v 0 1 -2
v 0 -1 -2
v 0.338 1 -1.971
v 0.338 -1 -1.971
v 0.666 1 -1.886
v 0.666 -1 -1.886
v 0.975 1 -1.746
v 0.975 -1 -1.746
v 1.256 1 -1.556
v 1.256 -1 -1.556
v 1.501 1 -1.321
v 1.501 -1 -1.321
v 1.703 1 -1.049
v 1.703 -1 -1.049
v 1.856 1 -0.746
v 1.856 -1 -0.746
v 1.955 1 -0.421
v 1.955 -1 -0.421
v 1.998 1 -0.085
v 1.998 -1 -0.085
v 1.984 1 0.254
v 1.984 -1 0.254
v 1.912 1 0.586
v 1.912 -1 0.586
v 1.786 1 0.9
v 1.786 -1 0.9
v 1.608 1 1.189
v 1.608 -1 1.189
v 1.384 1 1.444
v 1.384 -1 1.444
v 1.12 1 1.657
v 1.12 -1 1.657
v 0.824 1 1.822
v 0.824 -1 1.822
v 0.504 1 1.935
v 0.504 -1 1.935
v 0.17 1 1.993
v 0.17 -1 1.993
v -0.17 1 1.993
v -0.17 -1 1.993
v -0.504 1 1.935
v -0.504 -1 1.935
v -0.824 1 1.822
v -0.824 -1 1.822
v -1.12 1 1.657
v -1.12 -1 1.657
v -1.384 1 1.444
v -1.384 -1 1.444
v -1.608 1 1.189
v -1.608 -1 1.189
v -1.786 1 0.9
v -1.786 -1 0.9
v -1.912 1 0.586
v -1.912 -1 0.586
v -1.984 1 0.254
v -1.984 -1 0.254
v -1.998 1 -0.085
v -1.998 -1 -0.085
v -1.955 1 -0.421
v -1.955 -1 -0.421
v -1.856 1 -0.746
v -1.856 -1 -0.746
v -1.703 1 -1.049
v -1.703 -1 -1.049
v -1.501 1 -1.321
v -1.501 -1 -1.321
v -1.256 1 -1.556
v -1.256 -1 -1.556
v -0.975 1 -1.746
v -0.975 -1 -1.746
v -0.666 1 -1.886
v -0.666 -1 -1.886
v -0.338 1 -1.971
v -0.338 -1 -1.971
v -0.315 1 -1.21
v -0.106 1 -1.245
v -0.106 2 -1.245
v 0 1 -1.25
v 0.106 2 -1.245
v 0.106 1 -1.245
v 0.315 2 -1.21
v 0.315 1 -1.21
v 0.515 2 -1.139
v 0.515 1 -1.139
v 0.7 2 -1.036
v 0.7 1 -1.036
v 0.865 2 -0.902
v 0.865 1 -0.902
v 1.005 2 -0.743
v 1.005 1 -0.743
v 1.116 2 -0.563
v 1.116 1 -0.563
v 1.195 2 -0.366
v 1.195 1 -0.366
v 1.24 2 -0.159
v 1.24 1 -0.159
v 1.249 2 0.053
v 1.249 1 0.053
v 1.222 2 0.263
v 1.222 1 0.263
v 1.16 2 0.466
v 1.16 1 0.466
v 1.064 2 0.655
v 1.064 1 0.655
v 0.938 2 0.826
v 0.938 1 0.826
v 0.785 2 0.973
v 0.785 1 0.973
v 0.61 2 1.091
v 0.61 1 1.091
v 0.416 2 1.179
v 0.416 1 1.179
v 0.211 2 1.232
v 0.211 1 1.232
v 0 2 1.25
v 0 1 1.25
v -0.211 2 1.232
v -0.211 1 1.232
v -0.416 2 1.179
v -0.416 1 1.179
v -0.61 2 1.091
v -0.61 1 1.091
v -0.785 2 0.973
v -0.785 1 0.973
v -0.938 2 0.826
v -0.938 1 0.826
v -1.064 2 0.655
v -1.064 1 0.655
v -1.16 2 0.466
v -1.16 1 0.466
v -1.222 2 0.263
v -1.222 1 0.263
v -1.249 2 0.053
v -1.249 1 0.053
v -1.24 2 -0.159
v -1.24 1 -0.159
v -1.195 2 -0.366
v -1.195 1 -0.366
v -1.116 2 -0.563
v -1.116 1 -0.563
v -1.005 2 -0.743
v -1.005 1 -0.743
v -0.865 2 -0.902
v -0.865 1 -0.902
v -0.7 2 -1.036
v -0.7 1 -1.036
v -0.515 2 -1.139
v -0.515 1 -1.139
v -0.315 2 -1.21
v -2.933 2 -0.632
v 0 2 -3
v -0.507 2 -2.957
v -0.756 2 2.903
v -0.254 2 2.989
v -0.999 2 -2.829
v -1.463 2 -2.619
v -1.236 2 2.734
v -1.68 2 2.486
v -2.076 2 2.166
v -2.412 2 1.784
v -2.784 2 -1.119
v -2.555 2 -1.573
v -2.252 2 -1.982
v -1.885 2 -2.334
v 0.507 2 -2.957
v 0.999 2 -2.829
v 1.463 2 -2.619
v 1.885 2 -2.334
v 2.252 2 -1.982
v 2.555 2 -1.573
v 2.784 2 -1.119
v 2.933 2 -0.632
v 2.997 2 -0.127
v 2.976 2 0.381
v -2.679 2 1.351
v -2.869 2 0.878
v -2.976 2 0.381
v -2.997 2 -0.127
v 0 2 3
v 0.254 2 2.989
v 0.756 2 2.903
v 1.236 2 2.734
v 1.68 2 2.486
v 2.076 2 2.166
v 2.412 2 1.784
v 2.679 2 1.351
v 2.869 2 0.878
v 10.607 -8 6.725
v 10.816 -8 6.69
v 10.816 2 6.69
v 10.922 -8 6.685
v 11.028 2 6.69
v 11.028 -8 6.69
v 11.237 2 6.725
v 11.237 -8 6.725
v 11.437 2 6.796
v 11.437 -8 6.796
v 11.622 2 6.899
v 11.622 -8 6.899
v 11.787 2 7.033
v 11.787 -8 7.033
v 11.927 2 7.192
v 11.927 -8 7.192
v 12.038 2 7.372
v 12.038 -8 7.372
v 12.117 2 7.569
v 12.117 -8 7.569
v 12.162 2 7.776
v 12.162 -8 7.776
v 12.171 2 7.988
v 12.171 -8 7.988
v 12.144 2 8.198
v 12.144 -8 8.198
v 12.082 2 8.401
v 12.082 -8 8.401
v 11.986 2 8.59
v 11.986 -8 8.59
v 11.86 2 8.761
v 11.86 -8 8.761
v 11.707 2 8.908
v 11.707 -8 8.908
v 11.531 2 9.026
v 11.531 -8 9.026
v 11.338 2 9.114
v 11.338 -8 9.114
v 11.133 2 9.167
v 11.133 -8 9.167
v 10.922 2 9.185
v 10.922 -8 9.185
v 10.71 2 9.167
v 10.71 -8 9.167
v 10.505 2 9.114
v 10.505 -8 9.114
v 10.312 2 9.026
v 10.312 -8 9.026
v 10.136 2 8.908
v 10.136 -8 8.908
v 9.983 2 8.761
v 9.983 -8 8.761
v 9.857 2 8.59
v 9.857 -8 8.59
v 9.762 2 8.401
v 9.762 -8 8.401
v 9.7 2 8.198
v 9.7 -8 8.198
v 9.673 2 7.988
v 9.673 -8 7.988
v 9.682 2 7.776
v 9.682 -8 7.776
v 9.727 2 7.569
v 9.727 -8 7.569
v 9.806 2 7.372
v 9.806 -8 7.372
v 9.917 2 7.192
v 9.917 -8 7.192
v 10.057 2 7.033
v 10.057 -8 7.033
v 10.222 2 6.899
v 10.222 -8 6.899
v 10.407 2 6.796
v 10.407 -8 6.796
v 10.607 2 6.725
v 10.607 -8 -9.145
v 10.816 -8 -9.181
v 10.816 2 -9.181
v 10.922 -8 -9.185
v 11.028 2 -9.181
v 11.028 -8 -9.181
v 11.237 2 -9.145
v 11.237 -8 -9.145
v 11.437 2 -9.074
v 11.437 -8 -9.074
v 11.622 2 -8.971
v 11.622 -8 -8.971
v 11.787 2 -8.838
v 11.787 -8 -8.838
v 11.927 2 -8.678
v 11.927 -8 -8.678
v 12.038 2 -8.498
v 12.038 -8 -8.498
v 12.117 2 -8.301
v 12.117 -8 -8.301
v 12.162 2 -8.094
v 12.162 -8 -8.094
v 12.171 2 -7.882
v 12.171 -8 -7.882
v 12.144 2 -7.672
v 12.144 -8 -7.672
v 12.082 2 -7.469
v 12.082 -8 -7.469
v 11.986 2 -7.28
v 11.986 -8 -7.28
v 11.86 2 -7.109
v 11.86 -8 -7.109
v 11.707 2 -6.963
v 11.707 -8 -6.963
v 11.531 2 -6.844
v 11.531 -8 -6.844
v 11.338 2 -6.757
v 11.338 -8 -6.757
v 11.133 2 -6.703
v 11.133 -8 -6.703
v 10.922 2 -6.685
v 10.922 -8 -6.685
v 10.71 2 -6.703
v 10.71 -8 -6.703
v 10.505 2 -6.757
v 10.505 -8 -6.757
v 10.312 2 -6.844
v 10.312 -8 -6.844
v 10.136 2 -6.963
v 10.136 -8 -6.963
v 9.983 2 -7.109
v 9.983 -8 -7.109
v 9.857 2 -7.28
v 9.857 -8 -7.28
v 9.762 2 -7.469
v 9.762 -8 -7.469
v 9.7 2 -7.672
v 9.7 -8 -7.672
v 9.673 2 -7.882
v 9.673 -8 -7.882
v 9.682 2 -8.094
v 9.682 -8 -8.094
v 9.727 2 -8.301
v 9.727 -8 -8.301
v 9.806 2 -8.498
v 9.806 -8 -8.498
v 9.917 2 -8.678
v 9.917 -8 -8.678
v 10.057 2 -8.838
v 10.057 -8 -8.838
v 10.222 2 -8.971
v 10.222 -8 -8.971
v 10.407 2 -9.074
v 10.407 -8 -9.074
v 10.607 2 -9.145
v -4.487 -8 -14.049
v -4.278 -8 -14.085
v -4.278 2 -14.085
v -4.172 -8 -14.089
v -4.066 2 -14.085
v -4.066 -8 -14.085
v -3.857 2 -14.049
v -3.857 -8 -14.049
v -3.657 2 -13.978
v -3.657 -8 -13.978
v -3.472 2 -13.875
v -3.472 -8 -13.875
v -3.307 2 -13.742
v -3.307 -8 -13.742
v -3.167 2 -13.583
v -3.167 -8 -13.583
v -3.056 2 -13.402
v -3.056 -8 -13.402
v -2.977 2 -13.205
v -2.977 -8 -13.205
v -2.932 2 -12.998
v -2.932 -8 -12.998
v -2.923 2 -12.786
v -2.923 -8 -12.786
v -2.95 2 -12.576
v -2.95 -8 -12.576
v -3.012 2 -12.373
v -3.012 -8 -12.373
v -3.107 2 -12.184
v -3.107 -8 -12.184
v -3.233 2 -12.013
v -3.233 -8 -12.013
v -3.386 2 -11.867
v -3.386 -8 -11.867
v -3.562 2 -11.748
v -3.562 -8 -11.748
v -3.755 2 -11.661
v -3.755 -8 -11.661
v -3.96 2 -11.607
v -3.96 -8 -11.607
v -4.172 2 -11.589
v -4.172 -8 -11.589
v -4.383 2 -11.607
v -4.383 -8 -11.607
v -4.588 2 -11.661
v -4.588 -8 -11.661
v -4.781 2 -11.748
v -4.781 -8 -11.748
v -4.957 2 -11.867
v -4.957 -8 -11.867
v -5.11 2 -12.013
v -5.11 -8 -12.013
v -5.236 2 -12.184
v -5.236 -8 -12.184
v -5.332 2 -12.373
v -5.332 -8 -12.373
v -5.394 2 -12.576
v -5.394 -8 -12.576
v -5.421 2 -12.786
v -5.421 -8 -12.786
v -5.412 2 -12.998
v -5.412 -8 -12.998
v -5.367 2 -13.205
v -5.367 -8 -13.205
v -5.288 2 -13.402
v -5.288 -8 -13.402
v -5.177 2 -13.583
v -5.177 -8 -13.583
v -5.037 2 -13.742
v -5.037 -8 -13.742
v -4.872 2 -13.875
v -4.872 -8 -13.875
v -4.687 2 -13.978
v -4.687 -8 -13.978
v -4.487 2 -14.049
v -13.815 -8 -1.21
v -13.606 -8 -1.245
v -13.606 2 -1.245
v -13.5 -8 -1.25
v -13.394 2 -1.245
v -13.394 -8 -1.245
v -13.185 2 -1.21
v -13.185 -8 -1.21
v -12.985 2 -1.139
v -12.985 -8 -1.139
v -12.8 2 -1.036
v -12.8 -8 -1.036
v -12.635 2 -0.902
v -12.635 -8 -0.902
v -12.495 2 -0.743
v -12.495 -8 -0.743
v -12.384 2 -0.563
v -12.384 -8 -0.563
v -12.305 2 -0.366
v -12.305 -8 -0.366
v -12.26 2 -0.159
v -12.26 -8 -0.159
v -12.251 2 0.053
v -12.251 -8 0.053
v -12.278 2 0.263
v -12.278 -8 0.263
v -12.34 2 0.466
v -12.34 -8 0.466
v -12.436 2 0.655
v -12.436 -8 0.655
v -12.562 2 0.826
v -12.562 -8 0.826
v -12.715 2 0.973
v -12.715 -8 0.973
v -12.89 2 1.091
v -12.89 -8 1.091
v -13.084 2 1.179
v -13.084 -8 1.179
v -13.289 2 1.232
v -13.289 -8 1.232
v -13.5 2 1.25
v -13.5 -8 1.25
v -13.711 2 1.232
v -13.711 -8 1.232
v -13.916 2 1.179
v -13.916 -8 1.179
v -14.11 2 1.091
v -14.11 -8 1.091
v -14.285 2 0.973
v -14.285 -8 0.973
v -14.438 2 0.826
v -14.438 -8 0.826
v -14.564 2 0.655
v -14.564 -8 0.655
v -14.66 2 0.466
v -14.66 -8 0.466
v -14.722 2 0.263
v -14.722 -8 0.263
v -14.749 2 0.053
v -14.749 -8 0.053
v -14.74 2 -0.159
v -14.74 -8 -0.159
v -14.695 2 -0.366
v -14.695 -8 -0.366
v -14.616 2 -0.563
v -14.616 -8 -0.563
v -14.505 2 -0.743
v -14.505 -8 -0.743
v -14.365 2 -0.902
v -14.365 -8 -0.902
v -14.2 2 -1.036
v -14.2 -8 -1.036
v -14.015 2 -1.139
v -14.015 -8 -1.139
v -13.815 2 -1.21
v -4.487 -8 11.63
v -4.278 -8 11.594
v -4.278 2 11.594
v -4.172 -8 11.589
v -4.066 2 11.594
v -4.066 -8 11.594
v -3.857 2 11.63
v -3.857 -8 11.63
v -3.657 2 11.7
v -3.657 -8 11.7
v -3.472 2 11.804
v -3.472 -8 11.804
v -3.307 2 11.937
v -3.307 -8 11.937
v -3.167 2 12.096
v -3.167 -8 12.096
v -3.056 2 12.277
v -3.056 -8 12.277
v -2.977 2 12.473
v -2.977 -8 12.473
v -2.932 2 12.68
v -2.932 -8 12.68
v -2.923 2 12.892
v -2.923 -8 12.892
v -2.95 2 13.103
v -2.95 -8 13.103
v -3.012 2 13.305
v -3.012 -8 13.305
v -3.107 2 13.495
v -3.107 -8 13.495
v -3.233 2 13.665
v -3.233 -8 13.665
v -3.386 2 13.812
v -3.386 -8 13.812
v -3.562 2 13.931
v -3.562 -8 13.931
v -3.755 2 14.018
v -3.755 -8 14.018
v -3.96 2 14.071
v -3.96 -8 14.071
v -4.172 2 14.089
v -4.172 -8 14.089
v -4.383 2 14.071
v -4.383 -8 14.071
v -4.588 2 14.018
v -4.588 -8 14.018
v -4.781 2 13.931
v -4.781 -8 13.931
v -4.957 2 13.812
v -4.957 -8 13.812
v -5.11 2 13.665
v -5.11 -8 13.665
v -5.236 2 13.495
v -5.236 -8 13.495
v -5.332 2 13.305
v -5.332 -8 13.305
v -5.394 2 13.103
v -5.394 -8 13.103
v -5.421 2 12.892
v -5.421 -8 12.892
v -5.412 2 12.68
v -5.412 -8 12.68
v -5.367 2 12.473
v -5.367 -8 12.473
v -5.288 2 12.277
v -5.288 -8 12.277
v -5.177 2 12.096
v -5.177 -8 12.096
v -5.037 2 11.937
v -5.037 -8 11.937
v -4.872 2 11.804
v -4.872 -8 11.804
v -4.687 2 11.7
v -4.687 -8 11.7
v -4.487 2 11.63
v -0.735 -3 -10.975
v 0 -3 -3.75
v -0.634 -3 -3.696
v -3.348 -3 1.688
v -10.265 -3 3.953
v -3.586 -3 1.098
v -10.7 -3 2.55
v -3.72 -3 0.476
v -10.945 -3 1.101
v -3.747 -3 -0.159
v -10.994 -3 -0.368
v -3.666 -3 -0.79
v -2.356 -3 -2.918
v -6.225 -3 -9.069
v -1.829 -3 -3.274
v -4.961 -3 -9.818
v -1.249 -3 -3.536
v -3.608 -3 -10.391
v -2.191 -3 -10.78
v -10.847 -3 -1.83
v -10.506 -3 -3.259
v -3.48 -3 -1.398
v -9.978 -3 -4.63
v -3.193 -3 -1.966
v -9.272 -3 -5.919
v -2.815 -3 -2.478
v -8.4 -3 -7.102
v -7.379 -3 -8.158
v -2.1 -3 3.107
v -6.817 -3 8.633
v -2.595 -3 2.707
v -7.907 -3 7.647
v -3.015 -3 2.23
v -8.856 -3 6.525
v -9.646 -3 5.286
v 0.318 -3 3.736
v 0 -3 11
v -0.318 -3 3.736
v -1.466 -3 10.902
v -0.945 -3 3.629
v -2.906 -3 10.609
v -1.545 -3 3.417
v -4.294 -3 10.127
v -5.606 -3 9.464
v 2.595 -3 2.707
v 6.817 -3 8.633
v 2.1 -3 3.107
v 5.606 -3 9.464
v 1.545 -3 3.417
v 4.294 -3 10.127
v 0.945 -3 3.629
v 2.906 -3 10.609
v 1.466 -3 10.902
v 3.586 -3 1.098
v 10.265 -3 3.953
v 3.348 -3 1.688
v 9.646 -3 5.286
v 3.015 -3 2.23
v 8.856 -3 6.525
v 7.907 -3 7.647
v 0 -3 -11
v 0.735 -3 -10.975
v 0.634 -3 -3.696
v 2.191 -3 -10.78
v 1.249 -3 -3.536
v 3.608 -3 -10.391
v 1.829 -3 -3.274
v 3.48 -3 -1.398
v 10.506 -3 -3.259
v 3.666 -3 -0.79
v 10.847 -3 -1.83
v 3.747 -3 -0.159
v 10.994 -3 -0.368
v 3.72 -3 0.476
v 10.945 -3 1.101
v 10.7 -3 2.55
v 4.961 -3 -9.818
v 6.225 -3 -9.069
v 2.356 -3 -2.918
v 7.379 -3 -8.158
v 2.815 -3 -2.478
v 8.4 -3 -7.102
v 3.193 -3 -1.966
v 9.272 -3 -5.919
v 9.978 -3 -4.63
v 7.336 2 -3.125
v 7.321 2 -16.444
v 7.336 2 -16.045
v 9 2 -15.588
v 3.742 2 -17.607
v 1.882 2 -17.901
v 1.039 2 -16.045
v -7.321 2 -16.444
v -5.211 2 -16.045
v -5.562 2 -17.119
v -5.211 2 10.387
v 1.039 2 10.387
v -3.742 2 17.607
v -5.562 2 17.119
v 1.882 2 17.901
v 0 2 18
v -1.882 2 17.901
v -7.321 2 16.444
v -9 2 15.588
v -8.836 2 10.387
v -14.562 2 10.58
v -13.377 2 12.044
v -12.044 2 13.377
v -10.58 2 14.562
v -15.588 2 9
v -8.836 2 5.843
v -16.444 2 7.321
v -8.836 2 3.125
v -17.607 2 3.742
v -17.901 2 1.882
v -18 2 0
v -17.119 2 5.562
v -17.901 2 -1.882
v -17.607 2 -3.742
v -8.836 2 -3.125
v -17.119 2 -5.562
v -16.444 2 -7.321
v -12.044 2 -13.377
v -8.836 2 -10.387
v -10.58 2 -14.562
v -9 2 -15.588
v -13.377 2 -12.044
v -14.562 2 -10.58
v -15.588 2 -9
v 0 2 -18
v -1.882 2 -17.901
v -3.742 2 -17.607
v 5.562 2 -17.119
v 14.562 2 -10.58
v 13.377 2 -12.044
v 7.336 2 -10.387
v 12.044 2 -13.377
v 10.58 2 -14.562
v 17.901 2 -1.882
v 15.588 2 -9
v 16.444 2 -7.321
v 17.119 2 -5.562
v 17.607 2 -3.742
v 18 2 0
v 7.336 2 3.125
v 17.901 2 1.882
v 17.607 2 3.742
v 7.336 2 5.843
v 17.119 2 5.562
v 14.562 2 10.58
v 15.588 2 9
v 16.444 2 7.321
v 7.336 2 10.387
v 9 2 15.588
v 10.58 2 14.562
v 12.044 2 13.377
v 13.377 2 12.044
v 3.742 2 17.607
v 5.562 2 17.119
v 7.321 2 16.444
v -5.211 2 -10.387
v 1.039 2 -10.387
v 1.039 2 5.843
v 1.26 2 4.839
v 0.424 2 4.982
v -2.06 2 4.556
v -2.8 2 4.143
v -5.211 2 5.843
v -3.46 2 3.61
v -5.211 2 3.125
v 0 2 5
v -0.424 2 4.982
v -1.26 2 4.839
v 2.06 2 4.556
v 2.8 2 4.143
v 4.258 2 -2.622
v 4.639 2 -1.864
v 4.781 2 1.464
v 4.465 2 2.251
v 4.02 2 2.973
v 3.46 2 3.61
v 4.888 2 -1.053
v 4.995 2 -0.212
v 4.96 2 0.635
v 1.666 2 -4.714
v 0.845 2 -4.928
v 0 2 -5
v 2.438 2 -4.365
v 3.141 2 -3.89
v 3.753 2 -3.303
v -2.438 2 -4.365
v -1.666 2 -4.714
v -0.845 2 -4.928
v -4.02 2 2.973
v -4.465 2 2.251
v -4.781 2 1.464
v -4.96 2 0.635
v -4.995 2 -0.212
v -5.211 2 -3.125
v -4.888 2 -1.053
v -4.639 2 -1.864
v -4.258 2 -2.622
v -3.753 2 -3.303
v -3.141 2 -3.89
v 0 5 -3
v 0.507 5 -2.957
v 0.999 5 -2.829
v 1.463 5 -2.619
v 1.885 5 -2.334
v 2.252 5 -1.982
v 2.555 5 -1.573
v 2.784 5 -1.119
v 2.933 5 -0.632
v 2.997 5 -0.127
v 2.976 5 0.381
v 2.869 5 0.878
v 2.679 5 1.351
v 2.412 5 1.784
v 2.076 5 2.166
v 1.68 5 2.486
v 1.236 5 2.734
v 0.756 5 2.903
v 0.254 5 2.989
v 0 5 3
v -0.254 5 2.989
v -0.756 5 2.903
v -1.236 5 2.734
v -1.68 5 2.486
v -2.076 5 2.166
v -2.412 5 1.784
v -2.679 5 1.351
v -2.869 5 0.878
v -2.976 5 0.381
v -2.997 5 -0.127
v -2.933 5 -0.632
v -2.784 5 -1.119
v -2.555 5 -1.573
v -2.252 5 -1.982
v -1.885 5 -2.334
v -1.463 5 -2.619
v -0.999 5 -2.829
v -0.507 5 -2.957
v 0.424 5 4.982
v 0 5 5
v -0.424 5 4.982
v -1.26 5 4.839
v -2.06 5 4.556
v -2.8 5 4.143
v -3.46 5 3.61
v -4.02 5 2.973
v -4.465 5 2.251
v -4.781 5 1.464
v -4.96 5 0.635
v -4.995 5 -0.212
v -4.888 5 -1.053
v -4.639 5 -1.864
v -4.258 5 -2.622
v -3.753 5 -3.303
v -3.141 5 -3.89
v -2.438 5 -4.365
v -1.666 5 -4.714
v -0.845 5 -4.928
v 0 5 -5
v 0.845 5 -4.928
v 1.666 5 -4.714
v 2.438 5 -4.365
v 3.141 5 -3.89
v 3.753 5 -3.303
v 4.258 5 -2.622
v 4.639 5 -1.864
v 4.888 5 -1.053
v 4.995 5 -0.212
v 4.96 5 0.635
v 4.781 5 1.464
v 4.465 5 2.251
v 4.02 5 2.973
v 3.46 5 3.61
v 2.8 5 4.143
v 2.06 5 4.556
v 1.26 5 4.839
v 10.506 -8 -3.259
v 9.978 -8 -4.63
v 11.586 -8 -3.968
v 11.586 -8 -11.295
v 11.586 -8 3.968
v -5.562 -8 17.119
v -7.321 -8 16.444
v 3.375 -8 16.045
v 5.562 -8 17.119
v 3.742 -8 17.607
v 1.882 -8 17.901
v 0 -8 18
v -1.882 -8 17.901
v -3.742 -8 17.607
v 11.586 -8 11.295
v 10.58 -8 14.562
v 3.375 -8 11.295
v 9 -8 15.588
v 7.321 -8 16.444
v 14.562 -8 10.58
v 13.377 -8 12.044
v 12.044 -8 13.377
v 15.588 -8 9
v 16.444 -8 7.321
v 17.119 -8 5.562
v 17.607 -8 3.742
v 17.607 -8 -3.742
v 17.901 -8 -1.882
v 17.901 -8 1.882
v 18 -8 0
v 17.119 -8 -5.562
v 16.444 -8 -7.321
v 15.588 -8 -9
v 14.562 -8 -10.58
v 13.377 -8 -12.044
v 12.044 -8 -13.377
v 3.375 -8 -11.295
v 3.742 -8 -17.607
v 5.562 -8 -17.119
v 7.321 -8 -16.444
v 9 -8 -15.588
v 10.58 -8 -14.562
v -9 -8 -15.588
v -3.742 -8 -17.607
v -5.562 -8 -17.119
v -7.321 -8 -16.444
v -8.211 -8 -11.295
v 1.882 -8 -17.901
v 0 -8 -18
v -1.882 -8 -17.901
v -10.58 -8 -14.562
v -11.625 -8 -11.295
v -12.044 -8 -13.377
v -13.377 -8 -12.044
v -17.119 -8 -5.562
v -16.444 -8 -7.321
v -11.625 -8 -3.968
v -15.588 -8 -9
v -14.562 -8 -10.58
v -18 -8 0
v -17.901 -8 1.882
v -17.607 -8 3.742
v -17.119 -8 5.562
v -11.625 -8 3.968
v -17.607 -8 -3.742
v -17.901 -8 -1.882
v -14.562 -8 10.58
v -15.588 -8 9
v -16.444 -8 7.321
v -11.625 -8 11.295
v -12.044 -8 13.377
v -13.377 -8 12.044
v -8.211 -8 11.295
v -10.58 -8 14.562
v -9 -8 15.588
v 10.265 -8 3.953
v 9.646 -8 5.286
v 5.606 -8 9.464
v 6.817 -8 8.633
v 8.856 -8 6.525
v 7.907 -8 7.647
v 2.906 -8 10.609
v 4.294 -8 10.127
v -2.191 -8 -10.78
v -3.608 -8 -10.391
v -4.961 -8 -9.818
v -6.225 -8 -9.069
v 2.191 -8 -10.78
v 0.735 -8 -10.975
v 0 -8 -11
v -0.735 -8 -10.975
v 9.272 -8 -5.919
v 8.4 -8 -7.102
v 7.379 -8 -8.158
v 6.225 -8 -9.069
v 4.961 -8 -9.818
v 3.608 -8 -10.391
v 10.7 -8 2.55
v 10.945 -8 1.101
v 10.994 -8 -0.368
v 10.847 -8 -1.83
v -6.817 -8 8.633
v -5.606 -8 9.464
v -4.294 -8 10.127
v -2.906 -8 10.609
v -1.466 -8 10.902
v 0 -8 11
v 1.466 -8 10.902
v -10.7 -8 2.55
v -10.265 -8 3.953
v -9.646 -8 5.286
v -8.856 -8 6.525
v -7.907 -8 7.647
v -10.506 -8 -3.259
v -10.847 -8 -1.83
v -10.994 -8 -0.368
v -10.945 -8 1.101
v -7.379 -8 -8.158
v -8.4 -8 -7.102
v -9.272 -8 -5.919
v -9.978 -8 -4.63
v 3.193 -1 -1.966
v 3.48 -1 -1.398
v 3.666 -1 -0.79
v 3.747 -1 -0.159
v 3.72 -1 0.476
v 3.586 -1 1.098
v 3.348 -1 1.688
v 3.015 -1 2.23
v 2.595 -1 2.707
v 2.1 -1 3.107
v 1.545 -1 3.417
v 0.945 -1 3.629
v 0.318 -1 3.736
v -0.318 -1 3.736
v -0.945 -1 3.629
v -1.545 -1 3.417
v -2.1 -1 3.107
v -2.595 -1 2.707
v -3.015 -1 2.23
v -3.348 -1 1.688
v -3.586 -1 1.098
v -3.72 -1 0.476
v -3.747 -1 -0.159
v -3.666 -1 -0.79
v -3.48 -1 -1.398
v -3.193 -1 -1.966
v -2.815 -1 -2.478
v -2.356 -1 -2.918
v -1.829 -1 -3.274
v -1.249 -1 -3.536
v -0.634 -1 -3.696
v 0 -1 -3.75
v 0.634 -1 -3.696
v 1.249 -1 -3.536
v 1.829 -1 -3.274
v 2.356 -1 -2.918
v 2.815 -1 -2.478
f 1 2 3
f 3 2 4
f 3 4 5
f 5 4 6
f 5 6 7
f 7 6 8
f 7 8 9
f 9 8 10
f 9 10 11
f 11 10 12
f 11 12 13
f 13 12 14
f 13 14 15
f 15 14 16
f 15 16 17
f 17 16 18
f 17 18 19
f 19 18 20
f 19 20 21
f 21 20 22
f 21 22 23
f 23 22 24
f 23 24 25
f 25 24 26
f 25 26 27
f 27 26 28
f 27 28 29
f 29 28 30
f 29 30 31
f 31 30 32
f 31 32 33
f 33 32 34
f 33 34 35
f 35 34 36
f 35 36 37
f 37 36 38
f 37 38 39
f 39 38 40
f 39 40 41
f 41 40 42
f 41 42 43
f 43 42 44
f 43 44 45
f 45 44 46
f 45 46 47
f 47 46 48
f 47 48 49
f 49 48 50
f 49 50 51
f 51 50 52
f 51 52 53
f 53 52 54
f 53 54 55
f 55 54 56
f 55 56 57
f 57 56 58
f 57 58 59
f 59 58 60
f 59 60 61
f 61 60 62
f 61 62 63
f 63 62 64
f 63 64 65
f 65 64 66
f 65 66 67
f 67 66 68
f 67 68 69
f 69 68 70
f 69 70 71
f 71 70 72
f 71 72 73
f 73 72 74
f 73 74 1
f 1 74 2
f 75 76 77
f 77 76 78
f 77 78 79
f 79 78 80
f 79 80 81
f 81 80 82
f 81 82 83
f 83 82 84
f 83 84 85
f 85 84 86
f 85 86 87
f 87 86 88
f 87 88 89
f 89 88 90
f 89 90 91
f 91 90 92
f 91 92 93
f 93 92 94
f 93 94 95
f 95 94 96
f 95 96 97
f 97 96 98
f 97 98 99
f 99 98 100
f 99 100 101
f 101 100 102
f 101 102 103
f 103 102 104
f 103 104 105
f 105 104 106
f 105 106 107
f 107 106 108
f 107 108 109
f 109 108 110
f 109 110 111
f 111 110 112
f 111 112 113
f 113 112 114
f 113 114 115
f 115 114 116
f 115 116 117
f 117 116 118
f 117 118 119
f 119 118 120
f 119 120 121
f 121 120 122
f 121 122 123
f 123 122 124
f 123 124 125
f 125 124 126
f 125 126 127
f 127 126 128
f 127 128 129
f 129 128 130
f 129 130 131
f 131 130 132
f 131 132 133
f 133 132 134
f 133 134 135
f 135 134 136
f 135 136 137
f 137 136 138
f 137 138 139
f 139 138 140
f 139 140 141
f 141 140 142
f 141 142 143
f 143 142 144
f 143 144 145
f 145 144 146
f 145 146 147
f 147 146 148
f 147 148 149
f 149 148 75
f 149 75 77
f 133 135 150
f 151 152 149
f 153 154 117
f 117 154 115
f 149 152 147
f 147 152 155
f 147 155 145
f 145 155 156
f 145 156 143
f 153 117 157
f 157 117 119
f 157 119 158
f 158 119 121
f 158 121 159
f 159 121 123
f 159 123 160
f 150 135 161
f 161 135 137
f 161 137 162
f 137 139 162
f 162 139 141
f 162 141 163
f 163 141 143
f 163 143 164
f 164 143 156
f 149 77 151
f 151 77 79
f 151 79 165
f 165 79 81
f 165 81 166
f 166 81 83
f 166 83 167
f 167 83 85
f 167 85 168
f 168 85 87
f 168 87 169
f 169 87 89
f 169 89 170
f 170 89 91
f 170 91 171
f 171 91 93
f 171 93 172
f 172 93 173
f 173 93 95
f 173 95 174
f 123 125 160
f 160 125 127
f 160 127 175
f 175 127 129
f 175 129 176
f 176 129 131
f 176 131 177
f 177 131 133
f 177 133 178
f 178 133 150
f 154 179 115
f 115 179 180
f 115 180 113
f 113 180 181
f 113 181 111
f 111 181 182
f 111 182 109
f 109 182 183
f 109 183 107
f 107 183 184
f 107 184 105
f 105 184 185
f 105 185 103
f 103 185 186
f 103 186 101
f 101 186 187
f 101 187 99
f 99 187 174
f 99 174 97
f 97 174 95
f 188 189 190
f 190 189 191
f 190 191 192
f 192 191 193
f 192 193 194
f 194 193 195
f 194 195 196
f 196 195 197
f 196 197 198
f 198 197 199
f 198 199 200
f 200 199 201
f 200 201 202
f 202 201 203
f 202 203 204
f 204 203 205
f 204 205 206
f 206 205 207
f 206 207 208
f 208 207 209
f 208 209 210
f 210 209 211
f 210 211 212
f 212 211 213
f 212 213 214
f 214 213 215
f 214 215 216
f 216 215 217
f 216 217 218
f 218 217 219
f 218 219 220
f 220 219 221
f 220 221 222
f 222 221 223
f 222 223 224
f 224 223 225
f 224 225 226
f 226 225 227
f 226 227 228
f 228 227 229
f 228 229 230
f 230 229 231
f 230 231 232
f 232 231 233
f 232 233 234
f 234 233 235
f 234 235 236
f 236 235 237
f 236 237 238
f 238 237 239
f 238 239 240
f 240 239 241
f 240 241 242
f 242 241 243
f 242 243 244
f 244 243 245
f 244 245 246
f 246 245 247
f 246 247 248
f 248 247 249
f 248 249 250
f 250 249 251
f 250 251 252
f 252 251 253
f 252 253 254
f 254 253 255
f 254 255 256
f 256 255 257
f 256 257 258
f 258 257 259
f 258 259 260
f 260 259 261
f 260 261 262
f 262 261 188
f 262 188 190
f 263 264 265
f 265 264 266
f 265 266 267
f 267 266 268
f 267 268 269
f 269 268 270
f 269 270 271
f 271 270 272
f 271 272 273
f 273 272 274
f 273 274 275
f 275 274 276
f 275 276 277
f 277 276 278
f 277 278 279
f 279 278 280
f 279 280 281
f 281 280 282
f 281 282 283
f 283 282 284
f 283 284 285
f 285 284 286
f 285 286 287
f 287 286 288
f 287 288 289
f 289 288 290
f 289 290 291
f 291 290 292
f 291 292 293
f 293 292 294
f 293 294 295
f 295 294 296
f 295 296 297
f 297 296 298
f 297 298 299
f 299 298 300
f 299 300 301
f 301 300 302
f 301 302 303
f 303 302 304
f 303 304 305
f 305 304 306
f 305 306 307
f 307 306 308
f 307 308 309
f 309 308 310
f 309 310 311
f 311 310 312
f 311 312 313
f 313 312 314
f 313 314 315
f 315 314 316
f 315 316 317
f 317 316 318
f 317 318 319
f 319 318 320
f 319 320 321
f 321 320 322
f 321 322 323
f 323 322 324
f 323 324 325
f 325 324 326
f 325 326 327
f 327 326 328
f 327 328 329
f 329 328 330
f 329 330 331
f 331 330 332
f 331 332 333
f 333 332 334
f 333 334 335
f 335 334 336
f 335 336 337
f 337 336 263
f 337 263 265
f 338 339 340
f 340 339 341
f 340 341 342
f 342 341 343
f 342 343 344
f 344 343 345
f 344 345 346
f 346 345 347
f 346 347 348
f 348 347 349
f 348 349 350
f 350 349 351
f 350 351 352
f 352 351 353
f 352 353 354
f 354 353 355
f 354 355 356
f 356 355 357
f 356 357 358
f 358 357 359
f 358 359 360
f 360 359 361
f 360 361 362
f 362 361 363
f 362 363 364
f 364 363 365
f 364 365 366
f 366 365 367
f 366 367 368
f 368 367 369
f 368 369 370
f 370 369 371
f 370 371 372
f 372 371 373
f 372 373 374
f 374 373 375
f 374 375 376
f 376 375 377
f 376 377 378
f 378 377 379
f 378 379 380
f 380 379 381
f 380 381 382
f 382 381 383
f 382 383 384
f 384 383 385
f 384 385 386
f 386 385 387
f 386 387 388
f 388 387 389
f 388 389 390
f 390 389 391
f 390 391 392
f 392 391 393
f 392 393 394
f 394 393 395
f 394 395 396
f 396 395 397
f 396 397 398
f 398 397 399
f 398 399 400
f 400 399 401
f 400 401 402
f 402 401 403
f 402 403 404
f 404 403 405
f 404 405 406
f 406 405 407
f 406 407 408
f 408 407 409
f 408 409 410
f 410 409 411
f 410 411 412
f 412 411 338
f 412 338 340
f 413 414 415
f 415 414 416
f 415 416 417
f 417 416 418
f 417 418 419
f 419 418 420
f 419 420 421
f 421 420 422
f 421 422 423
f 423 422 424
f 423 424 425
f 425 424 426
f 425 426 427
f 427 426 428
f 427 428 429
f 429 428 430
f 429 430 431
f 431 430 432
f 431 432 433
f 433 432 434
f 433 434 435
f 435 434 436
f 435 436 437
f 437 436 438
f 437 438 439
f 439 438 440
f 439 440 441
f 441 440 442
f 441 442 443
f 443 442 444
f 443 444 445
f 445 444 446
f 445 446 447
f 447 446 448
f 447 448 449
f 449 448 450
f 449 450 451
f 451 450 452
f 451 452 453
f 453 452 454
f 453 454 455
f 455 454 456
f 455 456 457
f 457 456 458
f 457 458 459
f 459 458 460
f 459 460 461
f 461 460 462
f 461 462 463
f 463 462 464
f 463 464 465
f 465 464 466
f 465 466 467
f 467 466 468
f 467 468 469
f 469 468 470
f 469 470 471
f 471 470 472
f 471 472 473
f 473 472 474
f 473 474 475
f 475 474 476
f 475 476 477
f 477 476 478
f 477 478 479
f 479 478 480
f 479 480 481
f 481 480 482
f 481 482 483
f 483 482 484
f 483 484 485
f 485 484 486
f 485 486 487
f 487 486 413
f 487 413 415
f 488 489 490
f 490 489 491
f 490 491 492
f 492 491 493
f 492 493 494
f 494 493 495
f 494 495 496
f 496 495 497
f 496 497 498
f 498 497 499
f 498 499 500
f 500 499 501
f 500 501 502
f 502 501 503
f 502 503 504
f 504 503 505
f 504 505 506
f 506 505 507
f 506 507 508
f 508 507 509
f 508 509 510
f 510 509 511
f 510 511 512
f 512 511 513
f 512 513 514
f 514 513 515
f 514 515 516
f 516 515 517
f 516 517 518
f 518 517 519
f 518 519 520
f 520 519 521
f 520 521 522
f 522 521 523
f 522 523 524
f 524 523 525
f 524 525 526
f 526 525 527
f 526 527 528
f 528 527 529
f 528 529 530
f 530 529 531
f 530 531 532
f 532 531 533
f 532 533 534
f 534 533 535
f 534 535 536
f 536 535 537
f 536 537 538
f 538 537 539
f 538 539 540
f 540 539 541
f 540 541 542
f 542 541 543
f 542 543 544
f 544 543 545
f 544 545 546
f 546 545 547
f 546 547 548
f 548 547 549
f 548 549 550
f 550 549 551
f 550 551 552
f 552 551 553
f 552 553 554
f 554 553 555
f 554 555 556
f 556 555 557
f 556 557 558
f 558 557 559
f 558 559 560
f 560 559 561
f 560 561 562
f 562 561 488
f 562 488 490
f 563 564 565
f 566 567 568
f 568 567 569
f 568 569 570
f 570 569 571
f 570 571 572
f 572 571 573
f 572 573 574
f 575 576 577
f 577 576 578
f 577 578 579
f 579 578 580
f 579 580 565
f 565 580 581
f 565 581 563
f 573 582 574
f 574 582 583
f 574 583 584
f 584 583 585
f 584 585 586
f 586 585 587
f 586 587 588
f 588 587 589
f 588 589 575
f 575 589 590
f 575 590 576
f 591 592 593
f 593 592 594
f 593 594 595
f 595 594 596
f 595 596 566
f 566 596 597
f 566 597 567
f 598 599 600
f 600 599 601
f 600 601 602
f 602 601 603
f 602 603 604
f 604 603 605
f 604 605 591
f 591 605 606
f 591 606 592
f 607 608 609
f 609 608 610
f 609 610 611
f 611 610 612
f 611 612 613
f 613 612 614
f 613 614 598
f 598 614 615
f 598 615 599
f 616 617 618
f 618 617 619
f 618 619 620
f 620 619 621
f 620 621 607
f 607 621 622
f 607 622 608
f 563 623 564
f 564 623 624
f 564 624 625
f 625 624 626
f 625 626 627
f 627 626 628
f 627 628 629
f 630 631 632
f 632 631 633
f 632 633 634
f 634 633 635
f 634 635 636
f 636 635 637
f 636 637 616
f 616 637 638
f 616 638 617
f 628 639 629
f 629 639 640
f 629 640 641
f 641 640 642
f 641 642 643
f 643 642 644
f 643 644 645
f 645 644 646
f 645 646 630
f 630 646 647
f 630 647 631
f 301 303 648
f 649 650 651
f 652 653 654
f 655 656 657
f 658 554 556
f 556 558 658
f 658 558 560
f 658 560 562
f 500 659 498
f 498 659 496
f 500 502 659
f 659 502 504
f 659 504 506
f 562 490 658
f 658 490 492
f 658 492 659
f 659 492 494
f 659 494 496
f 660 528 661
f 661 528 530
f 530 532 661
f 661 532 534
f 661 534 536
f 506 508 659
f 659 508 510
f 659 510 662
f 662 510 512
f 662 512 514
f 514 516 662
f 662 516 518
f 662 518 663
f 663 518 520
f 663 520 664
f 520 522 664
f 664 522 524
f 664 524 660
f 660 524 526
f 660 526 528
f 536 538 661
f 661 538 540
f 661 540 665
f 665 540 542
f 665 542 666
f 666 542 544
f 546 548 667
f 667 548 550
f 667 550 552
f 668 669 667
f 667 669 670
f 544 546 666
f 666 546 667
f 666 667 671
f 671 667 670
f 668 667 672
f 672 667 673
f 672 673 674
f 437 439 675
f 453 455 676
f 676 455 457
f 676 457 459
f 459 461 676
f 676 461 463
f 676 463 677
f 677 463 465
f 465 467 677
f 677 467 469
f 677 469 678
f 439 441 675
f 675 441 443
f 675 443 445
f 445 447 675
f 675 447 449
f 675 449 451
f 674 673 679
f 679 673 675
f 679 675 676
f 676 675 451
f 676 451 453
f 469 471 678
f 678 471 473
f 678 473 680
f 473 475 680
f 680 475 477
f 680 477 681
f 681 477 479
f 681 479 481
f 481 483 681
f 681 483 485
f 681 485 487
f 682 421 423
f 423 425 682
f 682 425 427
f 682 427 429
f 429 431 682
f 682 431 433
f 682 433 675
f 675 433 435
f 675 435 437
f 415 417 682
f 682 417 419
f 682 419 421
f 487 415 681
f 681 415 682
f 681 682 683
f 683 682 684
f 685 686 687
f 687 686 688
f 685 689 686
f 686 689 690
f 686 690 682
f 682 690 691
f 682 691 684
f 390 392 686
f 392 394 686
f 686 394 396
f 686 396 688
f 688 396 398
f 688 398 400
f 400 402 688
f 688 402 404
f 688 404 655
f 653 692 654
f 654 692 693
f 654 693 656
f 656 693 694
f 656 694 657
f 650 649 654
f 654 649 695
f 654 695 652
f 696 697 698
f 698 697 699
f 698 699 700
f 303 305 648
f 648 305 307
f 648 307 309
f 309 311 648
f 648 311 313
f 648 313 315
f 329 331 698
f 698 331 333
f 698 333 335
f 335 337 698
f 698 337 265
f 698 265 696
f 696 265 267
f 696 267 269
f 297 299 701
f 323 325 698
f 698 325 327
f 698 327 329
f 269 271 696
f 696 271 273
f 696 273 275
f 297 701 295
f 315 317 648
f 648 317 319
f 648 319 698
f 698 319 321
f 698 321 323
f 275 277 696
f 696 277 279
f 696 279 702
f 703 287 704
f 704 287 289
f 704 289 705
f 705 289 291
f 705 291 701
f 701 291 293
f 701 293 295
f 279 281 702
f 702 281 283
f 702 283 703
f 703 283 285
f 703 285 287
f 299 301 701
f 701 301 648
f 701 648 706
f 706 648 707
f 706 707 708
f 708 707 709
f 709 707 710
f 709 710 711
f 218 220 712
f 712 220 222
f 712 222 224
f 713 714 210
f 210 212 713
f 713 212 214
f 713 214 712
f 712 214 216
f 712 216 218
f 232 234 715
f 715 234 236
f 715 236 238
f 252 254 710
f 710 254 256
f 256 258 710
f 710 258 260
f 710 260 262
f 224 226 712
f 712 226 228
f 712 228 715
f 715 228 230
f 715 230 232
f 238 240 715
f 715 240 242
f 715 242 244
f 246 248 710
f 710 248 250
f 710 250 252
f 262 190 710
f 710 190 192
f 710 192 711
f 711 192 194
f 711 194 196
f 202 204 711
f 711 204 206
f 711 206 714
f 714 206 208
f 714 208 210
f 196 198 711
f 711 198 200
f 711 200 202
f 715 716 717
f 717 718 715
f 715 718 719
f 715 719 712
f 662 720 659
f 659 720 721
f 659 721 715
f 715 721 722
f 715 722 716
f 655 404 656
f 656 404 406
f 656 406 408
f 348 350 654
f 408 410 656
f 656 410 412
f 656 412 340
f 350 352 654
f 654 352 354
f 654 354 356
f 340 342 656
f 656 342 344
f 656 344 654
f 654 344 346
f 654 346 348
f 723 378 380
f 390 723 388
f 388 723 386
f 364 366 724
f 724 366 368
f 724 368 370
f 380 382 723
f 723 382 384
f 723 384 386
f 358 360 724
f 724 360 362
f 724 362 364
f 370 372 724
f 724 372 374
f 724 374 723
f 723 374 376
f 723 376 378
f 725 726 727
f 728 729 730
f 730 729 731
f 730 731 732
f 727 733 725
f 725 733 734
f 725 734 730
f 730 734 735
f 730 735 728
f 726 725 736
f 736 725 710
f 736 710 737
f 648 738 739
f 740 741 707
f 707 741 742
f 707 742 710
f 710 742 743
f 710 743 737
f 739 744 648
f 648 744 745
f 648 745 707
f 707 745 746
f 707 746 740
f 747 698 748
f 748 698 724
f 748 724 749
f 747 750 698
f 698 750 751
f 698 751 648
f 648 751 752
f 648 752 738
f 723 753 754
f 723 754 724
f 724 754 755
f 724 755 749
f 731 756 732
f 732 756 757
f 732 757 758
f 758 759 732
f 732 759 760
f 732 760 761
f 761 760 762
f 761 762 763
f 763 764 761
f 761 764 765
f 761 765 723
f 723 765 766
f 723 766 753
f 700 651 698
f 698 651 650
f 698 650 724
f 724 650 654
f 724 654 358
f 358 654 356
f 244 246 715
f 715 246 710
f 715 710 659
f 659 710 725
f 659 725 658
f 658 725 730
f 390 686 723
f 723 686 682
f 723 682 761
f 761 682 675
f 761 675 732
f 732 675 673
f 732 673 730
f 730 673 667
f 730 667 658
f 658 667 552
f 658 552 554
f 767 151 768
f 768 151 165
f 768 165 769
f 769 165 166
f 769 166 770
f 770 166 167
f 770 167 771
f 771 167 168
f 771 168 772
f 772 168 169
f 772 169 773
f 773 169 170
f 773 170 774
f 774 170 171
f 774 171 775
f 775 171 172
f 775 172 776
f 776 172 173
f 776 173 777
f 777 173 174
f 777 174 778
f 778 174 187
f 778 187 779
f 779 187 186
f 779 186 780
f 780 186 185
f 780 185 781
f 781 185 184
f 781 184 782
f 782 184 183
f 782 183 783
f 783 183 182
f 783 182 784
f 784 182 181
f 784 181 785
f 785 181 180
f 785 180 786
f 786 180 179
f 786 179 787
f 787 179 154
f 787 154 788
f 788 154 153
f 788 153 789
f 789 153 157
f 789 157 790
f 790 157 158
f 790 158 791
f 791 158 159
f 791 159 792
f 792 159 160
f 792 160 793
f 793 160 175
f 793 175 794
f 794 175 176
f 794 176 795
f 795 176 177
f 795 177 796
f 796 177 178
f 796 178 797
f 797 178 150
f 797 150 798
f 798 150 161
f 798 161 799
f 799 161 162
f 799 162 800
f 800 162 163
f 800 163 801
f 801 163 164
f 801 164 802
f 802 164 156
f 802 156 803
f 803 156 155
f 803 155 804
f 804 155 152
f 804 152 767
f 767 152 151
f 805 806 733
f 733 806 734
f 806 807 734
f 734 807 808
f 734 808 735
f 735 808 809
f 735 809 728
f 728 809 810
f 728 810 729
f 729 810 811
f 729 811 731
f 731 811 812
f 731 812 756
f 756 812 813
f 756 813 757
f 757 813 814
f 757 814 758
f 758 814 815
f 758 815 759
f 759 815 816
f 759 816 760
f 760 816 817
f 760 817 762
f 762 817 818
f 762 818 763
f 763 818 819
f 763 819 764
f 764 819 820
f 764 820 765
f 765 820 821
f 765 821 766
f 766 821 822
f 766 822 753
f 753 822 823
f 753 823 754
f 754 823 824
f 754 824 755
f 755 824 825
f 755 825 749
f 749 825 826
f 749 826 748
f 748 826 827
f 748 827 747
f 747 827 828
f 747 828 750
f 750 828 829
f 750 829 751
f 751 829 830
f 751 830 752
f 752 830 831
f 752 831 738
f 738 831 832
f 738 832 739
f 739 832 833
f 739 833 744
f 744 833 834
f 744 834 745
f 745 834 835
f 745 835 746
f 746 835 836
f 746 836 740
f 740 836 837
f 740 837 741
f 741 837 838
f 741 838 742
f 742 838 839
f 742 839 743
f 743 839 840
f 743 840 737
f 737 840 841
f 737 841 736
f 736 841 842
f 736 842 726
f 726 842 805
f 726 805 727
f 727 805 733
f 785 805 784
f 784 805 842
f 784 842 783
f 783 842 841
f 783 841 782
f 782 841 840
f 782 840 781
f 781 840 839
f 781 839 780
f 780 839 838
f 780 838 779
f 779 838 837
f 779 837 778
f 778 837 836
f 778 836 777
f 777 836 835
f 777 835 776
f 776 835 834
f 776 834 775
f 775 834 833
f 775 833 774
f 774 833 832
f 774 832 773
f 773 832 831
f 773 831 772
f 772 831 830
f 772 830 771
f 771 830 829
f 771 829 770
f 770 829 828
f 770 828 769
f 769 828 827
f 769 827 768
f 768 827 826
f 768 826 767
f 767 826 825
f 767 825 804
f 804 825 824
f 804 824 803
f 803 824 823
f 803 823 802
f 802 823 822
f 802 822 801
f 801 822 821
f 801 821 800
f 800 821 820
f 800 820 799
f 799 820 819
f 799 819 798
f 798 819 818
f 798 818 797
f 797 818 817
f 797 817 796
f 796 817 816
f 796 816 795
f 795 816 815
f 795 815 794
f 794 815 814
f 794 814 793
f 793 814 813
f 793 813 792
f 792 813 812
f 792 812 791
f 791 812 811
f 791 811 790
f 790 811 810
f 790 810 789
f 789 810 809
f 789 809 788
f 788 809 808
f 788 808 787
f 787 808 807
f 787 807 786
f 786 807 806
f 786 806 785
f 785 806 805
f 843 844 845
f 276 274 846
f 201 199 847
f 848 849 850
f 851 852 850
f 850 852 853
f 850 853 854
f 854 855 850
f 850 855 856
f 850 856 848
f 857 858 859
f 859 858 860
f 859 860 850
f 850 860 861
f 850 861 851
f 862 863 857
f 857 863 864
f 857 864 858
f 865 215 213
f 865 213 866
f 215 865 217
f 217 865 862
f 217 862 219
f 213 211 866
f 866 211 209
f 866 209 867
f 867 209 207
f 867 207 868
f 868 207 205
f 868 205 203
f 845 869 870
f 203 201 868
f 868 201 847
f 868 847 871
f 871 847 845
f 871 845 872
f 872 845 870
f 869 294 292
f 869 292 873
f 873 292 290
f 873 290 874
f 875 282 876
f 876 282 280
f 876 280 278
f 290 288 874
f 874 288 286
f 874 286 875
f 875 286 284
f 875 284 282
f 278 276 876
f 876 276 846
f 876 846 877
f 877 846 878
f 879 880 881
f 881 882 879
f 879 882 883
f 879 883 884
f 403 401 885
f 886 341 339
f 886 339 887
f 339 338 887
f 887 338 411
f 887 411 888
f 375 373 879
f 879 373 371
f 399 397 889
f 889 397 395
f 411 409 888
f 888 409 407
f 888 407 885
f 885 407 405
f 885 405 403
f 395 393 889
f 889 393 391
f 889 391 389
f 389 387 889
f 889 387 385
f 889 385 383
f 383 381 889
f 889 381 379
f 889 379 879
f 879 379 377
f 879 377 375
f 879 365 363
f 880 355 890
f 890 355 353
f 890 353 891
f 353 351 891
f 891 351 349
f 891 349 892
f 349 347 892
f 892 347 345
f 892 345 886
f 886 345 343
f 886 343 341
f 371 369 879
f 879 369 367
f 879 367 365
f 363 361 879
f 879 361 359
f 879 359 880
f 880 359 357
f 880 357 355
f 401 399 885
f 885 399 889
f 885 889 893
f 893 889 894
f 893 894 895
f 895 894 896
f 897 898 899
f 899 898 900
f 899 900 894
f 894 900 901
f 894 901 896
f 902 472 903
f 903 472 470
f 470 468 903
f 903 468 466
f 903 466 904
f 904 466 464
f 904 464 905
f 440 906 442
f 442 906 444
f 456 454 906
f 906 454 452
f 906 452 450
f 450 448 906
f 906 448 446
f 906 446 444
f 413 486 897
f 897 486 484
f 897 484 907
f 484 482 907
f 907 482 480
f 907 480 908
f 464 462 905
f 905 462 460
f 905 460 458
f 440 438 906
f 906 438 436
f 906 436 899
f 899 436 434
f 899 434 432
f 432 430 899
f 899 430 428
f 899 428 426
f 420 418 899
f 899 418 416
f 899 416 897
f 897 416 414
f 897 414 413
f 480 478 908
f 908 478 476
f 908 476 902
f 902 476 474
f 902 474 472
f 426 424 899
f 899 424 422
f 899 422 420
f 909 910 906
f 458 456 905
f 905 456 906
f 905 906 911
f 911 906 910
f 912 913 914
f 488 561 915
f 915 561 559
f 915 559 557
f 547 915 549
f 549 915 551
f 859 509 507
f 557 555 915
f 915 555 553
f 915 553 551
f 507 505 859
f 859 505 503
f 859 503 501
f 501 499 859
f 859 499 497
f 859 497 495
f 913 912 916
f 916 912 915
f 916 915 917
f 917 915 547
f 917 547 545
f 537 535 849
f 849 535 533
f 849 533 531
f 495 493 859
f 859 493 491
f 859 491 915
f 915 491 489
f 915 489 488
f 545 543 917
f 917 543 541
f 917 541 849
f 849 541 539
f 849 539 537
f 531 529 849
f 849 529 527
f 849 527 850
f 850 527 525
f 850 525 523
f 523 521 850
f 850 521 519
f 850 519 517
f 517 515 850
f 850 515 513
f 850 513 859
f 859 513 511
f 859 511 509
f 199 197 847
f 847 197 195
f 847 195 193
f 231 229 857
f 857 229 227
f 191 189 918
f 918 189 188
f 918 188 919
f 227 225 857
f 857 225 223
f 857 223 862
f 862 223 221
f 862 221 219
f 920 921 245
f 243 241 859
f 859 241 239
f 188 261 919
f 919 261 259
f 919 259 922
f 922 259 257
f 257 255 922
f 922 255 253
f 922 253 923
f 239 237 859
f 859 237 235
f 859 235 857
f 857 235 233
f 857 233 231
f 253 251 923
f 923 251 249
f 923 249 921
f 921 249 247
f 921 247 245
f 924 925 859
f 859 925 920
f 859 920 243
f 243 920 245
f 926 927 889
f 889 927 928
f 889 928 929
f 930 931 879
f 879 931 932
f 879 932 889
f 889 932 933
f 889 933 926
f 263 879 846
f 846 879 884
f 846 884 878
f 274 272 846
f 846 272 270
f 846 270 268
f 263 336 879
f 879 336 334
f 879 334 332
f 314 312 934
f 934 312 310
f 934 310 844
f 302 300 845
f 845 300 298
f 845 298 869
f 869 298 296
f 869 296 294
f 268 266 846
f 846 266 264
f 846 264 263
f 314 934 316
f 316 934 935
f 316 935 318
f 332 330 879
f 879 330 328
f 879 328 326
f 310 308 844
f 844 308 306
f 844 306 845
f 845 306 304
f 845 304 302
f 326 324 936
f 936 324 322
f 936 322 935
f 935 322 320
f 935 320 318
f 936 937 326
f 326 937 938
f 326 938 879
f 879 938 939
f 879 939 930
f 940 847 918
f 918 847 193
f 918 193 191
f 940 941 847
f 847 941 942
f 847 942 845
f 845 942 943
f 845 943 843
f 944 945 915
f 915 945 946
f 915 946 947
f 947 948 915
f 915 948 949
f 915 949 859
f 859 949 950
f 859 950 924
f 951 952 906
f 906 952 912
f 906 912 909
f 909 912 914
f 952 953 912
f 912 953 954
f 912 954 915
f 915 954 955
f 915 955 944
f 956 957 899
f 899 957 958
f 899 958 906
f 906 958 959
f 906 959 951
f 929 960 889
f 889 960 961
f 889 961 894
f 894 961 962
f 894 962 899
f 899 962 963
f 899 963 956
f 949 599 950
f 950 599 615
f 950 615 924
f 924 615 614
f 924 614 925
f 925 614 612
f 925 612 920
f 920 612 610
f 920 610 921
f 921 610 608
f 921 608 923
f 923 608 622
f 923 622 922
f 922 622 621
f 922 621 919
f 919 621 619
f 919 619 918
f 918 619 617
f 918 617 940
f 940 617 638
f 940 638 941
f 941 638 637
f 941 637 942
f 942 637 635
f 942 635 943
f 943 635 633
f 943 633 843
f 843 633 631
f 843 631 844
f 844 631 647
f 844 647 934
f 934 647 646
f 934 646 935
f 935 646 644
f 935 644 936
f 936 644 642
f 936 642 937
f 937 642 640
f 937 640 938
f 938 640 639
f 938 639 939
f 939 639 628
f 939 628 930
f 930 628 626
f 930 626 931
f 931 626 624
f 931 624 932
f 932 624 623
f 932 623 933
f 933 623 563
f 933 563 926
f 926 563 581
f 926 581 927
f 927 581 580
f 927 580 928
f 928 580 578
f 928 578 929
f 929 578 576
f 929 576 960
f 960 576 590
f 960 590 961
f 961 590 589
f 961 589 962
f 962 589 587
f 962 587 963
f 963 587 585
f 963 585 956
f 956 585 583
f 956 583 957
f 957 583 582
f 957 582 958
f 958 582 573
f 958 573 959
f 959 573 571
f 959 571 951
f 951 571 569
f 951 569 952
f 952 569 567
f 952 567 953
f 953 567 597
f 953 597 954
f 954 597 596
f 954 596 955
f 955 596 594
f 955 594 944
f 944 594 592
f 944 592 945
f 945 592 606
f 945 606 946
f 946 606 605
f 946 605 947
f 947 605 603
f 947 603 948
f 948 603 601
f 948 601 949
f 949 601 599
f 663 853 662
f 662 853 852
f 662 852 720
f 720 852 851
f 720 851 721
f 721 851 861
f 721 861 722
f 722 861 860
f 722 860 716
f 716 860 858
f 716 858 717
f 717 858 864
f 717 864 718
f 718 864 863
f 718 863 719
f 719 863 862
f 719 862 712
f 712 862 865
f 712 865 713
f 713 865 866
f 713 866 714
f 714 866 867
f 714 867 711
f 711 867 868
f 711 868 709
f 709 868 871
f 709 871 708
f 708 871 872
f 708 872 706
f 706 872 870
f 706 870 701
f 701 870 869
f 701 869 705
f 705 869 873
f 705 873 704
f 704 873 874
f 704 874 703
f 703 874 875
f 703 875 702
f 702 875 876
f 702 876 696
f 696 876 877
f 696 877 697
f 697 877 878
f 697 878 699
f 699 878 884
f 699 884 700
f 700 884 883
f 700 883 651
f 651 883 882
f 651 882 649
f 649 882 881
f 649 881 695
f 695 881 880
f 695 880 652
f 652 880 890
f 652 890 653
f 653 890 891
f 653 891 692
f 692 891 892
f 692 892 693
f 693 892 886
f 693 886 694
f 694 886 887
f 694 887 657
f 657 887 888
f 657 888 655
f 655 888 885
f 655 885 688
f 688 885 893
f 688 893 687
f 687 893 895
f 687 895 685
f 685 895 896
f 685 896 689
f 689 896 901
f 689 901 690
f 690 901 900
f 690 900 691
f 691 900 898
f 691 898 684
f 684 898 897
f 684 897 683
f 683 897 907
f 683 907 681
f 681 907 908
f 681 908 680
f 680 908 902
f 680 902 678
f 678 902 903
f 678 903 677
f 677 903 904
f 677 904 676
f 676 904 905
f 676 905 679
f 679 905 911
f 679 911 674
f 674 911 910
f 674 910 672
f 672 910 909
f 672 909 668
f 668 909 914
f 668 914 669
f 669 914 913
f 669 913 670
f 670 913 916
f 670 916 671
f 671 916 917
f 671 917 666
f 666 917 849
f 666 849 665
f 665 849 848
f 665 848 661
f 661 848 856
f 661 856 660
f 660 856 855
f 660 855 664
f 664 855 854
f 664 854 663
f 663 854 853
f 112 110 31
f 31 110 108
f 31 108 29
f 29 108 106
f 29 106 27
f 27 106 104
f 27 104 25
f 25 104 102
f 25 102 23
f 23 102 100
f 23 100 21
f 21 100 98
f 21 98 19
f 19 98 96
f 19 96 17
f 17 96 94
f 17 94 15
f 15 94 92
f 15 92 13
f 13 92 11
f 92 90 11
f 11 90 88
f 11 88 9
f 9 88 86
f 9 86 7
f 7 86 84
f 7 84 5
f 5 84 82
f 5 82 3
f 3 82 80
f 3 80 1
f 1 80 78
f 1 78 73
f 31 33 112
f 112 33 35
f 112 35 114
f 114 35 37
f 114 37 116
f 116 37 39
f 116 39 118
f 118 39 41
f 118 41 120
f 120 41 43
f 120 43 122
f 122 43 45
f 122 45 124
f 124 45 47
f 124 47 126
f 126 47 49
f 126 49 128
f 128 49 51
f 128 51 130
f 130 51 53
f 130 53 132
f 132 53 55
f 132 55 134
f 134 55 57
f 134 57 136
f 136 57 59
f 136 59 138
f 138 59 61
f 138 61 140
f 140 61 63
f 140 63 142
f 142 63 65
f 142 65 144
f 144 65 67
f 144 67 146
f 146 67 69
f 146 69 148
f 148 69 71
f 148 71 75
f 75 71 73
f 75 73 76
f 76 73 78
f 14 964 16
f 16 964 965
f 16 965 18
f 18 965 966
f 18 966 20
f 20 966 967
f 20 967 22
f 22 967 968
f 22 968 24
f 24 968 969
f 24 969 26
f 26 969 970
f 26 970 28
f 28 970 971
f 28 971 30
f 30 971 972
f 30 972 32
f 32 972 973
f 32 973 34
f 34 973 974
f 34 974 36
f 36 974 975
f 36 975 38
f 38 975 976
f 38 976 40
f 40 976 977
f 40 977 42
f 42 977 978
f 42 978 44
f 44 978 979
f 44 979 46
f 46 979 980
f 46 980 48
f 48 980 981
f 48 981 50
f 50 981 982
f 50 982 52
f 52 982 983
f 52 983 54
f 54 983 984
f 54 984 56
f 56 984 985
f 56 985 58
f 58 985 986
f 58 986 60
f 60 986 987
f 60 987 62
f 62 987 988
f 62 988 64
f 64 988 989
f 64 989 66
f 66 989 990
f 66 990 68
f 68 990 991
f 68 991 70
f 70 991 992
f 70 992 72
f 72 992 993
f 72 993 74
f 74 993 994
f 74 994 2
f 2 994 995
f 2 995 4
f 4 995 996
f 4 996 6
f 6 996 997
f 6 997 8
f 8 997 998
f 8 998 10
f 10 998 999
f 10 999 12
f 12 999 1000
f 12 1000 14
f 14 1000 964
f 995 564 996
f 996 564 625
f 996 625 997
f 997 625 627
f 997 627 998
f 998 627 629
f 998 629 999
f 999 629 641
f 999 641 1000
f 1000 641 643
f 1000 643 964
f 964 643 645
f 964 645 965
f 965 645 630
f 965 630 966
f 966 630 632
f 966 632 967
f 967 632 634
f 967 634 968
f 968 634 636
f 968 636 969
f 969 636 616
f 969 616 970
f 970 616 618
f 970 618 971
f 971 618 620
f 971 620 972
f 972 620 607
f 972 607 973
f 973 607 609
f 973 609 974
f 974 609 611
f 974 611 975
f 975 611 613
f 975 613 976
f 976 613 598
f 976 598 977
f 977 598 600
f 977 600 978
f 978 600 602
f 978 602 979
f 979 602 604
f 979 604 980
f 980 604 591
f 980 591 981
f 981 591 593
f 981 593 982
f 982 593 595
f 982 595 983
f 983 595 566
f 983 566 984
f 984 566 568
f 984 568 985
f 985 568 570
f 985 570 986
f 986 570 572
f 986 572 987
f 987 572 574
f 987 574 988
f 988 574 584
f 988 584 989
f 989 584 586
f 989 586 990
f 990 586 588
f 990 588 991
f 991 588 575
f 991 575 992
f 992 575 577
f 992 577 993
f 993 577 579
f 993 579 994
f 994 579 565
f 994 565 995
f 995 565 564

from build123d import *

# Parameters (mm, degrees)
BOSS_EXTRUDE1_DEPTH      = 2
BOSS_EXTRUDE1_DEPTH_BACK = 3
SKETCH1_R                = 16
SKETCH1_R_2              = 1.25
SKETCH2_R                = 5
SKETCH2_R_2              = 3
BOSS_EXTRUDE3_DEPTH      = 3
SKETCH5_R                = 2.75
CUT_EXTRUDE2_DEPTH       = 1
SKETCH6_R                = 16
SKETCH6_R_2              = 11
SKETCH6_R_3              = 1.25
BOSS_EXTRUDE4_DEPTH      = 5
SKETCH7_R                = 18
SKETCH7_R_2              = 16
BOSS_EXTRUDE5_DEPTH      = 10
SKETCH8_R                = 2
CUT_EXTRUDE3_DEPTH       = 3
SKETCH9_R                = 3.75
CUT_EXTRUDE4_DEPTH       = 2


with BuildPart() as part:
    # Sketch1 → Boss-Extrude1 (new, two sides: drawn at the far end of the back side and taken through both)
    with BuildSketch(Plane(origin=(0, 0, 0), x_dir=(1, 0, 0), z_dir=(0, 1, 0)).offset(-BOSS_EXTRUDE1_DEPTH_BACK)):
        with Locations(Location((0, 0, 0), (0, 0, 270))):
            Circle(SKETCH1_R)
        with Locations(Location((0, 0, 0), (0, 0, 270))):
            Circle(SKETCH1_R_2, mode=Mode.SUBTRACT)
        with Locations(Location((-13.5, 0, 0), (0, 0, 270))):
            Circle(SKETCH1_R_2, mode=Mode.SUBTRACT)
        with Locations(Location((-4.171729424, 12.83926297, 0), (0, 0, 270))):
            Circle(SKETCH1_R_2, mode=Mode.SUBTRACT)
        with Locations(Location((10.921729424, 7.935100906, 0), (0, 0, 270))):
            Circle(SKETCH1_R_2, mode=Mode.SUBTRACT)
        with Locations(Location((10.921729424, -7.935100906, 0), (0, 0, 270))):
            Circle(SKETCH1_R_2, mode=Mode.SUBTRACT)
        with Locations(Location((-4.171729424, -12.83926297, 0), (0, 0, 270))):
            Circle(SKETCH1_R_2, mode=Mode.SUBTRACT)
    extrude(amount=BOSS_EXTRUDE1_DEPTH + BOSS_EXTRUDE1_DEPTH_BACK)

    # Sketch2 → Boss-Extrude3 (add)
    with BuildSketch(Plane(origin=(0, 2, 0), x_dir=(1, 0, 0), z_dir=(0, 1, 0))):
        with Locations(Location((0, 0, 0), (0, 0, 270))):
            Circle(SKETCH2_R)
        with Locations(Location((0, 0, 0), (0, 0, 270))):
            Circle(SKETCH2_R_2, mode=Mode.SUBTRACT)
    extrude(amount=BOSS_EXTRUDE3_DEPTH)

    # Sketch5 → Cut-Extrude2 (cut)
    with BuildSketch(Plane.XZ.offset(3)):
        with Locations(Location((0, 0, 0), (0, 0, 270))):
            Circle(SKETCH5_R)
    extrude(amount=-CUT_EXTRUDE2_DEPTH, mode=Mode.SUBTRACT)

    # Sketch6 → Boss-Extrude4 (add)
    with BuildSketch(Plane.XZ.offset(3)):
        with Locations(Location((0, 0, 0), (0, 0, 90))):
            Circle(SKETCH6_R)
        with Locations(Location((0, 0, 0), (0, 0, 270))):
            Circle(SKETCH6_R_2, mode=Mode.SUBTRACT)
        with Locations(Location((-13.5, 0, 0), (0, 0, 90))):
            Circle(SKETCH6_R_3, mode=Mode.SUBTRACT)
        with Locations(Location((-4.171729424, 12.83926297, 0), (0, 0, 90))):
            Circle(SKETCH6_R_3, mode=Mode.SUBTRACT)
        with Locations(Location((10.921729424, 7.935100906, 0), (0, 0, 90))):
            Circle(SKETCH6_R_3, mode=Mode.SUBTRACT)
        with Locations(Location((10.921729424, -7.935100906, 0), (0, 0, 90))):
            Circle(SKETCH6_R_3, mode=Mode.SUBTRACT)
        with Locations(Location((-4.171729424, -12.83926297, 0), (0, 0, 90))):
            Circle(SKETCH6_R_3, mode=Mode.SUBTRACT)
    extrude(amount=BOSS_EXTRUDE4_DEPTH)

    # Sketch7 → Boss-Extrude5 (add)
    with BuildSketch(Plane(origin=(0, 2, 0), x_dir=(1, 0, 0), z_dir=(0, 1, 0))):
        with Locations(Location((0, 0, 0), (0, 0, 270))):
            Circle(SKETCH7_R)
        Circle(SKETCH7_R_2, mode=Mode.SUBTRACT)
    extrude(amount=-BOSS_EXTRUDE5_DEPTH)

    # Sketch8 → Cut-Extrude3 (cut)
    with BuildSketch(Plane.XZ.offset(2)):
        with Locations(Location((0, 0, 0), (0, 0, 270))):
            Circle(SKETCH8_R)
    extrude(amount=-CUT_EXTRUDE3_DEPTH, mode=Mode.SUBTRACT)

    # Sketch9 → Cut-Extrude4 (cut)
    with BuildSketch(Plane.XZ.offset(3)):
        with Locations(Location((0, 0, 0), (0, 0, 270))):
            Circle(SKETCH9_R)
    extrude(amount=-CUT_EXTRUDE4_DEPTH, mode=Mode.SUBTRACT)


solid = part.part
